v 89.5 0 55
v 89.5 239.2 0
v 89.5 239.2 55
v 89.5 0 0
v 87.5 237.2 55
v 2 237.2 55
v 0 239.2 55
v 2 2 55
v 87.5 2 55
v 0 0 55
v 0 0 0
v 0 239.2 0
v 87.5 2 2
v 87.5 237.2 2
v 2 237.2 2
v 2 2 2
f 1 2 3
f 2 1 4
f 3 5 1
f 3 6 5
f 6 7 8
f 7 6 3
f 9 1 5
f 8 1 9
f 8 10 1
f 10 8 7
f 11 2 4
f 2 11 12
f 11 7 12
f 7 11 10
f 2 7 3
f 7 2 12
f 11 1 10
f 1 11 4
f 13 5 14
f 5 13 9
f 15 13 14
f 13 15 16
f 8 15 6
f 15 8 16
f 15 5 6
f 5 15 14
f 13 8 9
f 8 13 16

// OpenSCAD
// TANAHAKO: long cutlery box
// Print four copies.
width = 89.5;
depth = 239.2;
height = 55;
wall = 2;
base = 2;

difference() {
    cube([width, depth, height]);
    translate([wall, wall, base])
        cube([width - 2 * wall, depth - 2 * wall, height - base + 0.01]);
}
